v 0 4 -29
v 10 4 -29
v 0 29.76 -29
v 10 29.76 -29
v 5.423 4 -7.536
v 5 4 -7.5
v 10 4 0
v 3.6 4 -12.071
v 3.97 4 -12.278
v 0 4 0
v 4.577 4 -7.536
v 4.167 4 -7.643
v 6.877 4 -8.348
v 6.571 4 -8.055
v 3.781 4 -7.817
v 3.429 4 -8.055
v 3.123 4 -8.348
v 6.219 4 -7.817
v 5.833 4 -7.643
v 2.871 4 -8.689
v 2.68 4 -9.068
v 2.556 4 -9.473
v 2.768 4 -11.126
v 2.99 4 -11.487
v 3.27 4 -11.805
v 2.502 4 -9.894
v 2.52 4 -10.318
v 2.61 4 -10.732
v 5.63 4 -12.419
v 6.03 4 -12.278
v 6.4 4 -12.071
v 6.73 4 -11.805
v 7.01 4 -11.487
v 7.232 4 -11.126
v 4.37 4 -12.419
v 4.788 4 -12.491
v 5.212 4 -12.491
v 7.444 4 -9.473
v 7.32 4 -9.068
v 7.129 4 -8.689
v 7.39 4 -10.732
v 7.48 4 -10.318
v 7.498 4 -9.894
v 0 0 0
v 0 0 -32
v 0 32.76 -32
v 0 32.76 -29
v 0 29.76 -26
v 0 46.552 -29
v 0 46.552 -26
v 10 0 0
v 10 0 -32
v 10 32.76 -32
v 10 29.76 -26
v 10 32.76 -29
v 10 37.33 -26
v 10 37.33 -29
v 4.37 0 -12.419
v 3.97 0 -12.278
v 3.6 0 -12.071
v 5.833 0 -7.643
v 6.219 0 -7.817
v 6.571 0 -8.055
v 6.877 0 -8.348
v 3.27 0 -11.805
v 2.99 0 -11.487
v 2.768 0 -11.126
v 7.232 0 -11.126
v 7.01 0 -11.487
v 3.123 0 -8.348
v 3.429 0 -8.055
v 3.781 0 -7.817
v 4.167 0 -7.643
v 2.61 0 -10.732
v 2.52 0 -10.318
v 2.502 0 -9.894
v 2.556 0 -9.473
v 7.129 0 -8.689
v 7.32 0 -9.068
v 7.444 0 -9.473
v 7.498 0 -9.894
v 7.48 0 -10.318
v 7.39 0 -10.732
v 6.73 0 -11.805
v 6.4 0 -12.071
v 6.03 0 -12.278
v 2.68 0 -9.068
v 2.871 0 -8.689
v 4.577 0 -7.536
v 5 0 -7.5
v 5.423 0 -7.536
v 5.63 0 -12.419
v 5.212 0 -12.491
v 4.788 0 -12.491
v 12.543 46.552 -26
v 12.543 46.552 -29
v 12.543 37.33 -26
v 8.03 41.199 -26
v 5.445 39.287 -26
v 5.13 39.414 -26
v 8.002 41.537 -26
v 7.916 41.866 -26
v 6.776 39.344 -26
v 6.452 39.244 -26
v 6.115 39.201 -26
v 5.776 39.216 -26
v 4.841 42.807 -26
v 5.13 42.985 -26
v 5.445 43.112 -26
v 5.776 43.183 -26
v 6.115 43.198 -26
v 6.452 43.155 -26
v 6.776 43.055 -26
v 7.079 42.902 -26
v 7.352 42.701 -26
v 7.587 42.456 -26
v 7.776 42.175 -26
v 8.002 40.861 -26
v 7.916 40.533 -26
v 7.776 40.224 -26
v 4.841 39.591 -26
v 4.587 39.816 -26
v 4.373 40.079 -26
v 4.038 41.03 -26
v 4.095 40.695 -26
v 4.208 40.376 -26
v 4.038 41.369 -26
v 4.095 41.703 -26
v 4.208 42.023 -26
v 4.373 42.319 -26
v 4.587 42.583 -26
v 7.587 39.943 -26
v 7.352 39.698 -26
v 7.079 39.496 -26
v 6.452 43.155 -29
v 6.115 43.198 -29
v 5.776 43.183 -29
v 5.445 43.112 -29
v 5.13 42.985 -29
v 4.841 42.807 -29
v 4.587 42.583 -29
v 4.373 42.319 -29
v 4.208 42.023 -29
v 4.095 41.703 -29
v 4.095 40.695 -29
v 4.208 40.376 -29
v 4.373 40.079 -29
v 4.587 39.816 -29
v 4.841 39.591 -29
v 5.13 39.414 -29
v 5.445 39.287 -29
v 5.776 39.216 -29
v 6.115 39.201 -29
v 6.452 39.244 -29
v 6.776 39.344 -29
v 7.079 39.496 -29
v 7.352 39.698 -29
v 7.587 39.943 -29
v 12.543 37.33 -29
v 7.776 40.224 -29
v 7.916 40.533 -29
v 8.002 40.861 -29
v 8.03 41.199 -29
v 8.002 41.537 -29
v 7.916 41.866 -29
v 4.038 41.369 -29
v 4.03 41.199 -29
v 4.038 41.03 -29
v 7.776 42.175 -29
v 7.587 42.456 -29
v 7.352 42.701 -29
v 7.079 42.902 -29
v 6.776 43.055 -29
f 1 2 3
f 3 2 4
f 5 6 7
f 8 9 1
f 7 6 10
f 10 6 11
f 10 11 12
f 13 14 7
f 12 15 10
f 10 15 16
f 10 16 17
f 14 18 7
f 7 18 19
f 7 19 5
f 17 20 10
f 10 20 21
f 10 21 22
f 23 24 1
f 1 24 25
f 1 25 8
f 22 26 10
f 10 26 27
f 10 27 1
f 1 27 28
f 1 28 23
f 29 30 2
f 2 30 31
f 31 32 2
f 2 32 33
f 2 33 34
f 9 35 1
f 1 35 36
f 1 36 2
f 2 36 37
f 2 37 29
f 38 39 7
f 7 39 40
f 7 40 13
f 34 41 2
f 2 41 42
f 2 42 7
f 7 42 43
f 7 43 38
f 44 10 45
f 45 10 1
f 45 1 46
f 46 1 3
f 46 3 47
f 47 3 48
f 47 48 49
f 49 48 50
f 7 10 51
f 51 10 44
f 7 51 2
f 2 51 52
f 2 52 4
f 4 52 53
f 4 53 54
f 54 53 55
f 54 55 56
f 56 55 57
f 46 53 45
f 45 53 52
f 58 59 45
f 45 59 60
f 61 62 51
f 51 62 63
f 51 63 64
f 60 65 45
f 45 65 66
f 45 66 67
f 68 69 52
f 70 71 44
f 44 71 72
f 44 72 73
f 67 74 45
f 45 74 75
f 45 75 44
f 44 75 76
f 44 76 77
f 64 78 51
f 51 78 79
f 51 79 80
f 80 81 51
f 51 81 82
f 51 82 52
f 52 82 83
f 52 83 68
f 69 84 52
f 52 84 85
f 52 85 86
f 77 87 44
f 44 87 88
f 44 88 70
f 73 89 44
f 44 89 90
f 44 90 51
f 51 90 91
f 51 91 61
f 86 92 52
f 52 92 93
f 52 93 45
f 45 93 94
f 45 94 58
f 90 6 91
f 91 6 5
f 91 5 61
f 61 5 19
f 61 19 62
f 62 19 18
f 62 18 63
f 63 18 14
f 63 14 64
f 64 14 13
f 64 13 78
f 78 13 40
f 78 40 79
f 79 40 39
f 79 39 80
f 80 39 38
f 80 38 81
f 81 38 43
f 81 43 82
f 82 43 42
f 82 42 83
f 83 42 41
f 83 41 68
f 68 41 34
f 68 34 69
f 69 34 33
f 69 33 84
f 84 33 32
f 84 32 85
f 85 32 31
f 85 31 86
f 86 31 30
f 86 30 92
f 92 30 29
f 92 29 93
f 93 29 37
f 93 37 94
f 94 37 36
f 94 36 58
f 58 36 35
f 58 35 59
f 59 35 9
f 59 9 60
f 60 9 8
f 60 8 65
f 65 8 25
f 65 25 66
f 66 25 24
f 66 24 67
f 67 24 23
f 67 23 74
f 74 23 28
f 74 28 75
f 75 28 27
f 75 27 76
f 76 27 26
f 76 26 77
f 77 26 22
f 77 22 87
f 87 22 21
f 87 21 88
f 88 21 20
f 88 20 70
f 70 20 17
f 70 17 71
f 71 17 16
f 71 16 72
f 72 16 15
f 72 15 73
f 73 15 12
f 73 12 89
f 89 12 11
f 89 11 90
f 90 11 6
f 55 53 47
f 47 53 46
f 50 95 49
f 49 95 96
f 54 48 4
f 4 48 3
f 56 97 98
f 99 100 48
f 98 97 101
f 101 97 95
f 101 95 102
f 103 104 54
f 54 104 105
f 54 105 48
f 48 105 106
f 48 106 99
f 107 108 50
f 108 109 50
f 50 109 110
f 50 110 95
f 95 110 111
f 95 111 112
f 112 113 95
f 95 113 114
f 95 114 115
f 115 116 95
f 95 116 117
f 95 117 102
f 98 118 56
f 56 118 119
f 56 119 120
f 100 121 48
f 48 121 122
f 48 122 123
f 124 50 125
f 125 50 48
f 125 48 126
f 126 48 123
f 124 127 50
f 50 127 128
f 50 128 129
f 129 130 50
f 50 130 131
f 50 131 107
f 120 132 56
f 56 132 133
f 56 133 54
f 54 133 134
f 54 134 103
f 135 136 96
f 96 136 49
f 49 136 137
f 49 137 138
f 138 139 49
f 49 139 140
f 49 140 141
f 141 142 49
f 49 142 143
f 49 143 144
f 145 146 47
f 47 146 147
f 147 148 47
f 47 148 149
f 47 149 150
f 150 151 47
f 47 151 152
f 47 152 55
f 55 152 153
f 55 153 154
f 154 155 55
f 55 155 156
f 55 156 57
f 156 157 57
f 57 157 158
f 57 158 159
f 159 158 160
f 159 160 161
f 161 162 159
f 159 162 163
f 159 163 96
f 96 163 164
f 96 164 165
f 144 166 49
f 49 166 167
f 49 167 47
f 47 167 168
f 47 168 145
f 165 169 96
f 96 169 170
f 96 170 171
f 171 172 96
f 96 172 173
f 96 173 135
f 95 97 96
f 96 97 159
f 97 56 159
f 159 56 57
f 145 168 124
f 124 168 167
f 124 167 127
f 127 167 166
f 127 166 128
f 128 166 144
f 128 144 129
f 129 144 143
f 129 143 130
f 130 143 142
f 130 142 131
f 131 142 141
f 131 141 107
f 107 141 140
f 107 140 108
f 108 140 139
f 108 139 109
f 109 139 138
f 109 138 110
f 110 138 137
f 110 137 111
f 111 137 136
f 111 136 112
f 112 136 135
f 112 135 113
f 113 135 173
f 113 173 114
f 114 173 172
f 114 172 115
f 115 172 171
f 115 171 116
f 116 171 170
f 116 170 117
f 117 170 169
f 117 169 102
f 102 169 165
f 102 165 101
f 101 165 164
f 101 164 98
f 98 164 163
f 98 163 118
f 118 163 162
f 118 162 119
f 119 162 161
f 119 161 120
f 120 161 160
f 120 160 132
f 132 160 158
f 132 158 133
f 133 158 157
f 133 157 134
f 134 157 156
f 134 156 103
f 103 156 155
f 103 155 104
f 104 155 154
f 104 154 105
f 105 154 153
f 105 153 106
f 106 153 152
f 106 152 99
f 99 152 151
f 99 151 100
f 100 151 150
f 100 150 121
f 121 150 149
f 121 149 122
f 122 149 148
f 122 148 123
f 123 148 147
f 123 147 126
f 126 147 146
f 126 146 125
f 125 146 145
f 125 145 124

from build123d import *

# Parameters (mm, degrees)
SKETCH1_W           = 10
SKETCH1_H           = 32
BOSS_EXTRUDE1_DEPTH = 4
SKETCH2_R           = 2.5
CUT_EXTRUDE1_DEPTH  = 4
SKETCH3_W           = 10
SKETCH3_H           = 3
BOSS_EXTRUDE2_DEPTH = 28.76
SKETCH4_W           = 2.542985542
SKETCH4_H           = 9.222544282
BOSS_EXTRUDE3_DEPTH = 3
SKETCH5_R           = 2
CUT_EXTRUDE2_DEPTH  = 13


with BuildPart() as part:
    # Sketch1 → Boss-Extrude1 (new body)
    with BuildSketch(Plane(origin=(0, 0, 0), x_dir=(1, 0, 0), z_dir=(0, 1, 0))):
        with Locations((5, 16)):
            Rectangle(SKETCH1_W, SKETCH1_H)
    extrude(amount=BOSS_EXTRUDE1_DEPTH)

    # Sketch2 → Cut-Extrude1 (cut)
    with BuildSketch(Plane(origin=(0, 4, 0), x_dir=(1, 0, 0), z_dir=(0, 1, 0))):
        with Locations((5, 10)):
            Circle(SKETCH2_R)
    extrude(amount=-CUT_EXTRUDE1_DEPTH, mode=Mode.SUBTRACT)

    # Sketch3 → Boss-Extrude2 (add)
    with BuildSketch(Plane(origin=(0, 4, 0), x_dir=(1, 0, 0), z_dir=(0, 1, 0))):
        with Locations((5, 30.5)):
            Rectangle(SKETCH3_W, SKETCH3_H)
    extrude(amount=BOSS_EXTRUDE2_DEPTH)

    # Sketch4 → Boss-Extrude3 (add)
    with BuildSketch(Plane.XY.offset(-29)):
        Polygon((10, 37.329817811), (10, 46.552362093), (0, 46.552362093), (0, 29.76), (10, 29.76), align=None)
        with Locations((11.271492771, 41.941089952)):
            Rectangle(SKETCH4_W, SKETCH4_H)
    extrude(amount=BOSS_EXTRUDE3_DEPTH)

    # Sketch5 → Cut-Extrude2 (cut)
    with BuildSketch(Plane.XY.offset(-26)):
        with Locations((6.030433289, 41.199403662)):
            Circle(SKETCH5_R)
    extrude(amount=-CUT_EXTRUDE2_DEPTH, mode=Mode.SUBTRACT)


solid = part.part
